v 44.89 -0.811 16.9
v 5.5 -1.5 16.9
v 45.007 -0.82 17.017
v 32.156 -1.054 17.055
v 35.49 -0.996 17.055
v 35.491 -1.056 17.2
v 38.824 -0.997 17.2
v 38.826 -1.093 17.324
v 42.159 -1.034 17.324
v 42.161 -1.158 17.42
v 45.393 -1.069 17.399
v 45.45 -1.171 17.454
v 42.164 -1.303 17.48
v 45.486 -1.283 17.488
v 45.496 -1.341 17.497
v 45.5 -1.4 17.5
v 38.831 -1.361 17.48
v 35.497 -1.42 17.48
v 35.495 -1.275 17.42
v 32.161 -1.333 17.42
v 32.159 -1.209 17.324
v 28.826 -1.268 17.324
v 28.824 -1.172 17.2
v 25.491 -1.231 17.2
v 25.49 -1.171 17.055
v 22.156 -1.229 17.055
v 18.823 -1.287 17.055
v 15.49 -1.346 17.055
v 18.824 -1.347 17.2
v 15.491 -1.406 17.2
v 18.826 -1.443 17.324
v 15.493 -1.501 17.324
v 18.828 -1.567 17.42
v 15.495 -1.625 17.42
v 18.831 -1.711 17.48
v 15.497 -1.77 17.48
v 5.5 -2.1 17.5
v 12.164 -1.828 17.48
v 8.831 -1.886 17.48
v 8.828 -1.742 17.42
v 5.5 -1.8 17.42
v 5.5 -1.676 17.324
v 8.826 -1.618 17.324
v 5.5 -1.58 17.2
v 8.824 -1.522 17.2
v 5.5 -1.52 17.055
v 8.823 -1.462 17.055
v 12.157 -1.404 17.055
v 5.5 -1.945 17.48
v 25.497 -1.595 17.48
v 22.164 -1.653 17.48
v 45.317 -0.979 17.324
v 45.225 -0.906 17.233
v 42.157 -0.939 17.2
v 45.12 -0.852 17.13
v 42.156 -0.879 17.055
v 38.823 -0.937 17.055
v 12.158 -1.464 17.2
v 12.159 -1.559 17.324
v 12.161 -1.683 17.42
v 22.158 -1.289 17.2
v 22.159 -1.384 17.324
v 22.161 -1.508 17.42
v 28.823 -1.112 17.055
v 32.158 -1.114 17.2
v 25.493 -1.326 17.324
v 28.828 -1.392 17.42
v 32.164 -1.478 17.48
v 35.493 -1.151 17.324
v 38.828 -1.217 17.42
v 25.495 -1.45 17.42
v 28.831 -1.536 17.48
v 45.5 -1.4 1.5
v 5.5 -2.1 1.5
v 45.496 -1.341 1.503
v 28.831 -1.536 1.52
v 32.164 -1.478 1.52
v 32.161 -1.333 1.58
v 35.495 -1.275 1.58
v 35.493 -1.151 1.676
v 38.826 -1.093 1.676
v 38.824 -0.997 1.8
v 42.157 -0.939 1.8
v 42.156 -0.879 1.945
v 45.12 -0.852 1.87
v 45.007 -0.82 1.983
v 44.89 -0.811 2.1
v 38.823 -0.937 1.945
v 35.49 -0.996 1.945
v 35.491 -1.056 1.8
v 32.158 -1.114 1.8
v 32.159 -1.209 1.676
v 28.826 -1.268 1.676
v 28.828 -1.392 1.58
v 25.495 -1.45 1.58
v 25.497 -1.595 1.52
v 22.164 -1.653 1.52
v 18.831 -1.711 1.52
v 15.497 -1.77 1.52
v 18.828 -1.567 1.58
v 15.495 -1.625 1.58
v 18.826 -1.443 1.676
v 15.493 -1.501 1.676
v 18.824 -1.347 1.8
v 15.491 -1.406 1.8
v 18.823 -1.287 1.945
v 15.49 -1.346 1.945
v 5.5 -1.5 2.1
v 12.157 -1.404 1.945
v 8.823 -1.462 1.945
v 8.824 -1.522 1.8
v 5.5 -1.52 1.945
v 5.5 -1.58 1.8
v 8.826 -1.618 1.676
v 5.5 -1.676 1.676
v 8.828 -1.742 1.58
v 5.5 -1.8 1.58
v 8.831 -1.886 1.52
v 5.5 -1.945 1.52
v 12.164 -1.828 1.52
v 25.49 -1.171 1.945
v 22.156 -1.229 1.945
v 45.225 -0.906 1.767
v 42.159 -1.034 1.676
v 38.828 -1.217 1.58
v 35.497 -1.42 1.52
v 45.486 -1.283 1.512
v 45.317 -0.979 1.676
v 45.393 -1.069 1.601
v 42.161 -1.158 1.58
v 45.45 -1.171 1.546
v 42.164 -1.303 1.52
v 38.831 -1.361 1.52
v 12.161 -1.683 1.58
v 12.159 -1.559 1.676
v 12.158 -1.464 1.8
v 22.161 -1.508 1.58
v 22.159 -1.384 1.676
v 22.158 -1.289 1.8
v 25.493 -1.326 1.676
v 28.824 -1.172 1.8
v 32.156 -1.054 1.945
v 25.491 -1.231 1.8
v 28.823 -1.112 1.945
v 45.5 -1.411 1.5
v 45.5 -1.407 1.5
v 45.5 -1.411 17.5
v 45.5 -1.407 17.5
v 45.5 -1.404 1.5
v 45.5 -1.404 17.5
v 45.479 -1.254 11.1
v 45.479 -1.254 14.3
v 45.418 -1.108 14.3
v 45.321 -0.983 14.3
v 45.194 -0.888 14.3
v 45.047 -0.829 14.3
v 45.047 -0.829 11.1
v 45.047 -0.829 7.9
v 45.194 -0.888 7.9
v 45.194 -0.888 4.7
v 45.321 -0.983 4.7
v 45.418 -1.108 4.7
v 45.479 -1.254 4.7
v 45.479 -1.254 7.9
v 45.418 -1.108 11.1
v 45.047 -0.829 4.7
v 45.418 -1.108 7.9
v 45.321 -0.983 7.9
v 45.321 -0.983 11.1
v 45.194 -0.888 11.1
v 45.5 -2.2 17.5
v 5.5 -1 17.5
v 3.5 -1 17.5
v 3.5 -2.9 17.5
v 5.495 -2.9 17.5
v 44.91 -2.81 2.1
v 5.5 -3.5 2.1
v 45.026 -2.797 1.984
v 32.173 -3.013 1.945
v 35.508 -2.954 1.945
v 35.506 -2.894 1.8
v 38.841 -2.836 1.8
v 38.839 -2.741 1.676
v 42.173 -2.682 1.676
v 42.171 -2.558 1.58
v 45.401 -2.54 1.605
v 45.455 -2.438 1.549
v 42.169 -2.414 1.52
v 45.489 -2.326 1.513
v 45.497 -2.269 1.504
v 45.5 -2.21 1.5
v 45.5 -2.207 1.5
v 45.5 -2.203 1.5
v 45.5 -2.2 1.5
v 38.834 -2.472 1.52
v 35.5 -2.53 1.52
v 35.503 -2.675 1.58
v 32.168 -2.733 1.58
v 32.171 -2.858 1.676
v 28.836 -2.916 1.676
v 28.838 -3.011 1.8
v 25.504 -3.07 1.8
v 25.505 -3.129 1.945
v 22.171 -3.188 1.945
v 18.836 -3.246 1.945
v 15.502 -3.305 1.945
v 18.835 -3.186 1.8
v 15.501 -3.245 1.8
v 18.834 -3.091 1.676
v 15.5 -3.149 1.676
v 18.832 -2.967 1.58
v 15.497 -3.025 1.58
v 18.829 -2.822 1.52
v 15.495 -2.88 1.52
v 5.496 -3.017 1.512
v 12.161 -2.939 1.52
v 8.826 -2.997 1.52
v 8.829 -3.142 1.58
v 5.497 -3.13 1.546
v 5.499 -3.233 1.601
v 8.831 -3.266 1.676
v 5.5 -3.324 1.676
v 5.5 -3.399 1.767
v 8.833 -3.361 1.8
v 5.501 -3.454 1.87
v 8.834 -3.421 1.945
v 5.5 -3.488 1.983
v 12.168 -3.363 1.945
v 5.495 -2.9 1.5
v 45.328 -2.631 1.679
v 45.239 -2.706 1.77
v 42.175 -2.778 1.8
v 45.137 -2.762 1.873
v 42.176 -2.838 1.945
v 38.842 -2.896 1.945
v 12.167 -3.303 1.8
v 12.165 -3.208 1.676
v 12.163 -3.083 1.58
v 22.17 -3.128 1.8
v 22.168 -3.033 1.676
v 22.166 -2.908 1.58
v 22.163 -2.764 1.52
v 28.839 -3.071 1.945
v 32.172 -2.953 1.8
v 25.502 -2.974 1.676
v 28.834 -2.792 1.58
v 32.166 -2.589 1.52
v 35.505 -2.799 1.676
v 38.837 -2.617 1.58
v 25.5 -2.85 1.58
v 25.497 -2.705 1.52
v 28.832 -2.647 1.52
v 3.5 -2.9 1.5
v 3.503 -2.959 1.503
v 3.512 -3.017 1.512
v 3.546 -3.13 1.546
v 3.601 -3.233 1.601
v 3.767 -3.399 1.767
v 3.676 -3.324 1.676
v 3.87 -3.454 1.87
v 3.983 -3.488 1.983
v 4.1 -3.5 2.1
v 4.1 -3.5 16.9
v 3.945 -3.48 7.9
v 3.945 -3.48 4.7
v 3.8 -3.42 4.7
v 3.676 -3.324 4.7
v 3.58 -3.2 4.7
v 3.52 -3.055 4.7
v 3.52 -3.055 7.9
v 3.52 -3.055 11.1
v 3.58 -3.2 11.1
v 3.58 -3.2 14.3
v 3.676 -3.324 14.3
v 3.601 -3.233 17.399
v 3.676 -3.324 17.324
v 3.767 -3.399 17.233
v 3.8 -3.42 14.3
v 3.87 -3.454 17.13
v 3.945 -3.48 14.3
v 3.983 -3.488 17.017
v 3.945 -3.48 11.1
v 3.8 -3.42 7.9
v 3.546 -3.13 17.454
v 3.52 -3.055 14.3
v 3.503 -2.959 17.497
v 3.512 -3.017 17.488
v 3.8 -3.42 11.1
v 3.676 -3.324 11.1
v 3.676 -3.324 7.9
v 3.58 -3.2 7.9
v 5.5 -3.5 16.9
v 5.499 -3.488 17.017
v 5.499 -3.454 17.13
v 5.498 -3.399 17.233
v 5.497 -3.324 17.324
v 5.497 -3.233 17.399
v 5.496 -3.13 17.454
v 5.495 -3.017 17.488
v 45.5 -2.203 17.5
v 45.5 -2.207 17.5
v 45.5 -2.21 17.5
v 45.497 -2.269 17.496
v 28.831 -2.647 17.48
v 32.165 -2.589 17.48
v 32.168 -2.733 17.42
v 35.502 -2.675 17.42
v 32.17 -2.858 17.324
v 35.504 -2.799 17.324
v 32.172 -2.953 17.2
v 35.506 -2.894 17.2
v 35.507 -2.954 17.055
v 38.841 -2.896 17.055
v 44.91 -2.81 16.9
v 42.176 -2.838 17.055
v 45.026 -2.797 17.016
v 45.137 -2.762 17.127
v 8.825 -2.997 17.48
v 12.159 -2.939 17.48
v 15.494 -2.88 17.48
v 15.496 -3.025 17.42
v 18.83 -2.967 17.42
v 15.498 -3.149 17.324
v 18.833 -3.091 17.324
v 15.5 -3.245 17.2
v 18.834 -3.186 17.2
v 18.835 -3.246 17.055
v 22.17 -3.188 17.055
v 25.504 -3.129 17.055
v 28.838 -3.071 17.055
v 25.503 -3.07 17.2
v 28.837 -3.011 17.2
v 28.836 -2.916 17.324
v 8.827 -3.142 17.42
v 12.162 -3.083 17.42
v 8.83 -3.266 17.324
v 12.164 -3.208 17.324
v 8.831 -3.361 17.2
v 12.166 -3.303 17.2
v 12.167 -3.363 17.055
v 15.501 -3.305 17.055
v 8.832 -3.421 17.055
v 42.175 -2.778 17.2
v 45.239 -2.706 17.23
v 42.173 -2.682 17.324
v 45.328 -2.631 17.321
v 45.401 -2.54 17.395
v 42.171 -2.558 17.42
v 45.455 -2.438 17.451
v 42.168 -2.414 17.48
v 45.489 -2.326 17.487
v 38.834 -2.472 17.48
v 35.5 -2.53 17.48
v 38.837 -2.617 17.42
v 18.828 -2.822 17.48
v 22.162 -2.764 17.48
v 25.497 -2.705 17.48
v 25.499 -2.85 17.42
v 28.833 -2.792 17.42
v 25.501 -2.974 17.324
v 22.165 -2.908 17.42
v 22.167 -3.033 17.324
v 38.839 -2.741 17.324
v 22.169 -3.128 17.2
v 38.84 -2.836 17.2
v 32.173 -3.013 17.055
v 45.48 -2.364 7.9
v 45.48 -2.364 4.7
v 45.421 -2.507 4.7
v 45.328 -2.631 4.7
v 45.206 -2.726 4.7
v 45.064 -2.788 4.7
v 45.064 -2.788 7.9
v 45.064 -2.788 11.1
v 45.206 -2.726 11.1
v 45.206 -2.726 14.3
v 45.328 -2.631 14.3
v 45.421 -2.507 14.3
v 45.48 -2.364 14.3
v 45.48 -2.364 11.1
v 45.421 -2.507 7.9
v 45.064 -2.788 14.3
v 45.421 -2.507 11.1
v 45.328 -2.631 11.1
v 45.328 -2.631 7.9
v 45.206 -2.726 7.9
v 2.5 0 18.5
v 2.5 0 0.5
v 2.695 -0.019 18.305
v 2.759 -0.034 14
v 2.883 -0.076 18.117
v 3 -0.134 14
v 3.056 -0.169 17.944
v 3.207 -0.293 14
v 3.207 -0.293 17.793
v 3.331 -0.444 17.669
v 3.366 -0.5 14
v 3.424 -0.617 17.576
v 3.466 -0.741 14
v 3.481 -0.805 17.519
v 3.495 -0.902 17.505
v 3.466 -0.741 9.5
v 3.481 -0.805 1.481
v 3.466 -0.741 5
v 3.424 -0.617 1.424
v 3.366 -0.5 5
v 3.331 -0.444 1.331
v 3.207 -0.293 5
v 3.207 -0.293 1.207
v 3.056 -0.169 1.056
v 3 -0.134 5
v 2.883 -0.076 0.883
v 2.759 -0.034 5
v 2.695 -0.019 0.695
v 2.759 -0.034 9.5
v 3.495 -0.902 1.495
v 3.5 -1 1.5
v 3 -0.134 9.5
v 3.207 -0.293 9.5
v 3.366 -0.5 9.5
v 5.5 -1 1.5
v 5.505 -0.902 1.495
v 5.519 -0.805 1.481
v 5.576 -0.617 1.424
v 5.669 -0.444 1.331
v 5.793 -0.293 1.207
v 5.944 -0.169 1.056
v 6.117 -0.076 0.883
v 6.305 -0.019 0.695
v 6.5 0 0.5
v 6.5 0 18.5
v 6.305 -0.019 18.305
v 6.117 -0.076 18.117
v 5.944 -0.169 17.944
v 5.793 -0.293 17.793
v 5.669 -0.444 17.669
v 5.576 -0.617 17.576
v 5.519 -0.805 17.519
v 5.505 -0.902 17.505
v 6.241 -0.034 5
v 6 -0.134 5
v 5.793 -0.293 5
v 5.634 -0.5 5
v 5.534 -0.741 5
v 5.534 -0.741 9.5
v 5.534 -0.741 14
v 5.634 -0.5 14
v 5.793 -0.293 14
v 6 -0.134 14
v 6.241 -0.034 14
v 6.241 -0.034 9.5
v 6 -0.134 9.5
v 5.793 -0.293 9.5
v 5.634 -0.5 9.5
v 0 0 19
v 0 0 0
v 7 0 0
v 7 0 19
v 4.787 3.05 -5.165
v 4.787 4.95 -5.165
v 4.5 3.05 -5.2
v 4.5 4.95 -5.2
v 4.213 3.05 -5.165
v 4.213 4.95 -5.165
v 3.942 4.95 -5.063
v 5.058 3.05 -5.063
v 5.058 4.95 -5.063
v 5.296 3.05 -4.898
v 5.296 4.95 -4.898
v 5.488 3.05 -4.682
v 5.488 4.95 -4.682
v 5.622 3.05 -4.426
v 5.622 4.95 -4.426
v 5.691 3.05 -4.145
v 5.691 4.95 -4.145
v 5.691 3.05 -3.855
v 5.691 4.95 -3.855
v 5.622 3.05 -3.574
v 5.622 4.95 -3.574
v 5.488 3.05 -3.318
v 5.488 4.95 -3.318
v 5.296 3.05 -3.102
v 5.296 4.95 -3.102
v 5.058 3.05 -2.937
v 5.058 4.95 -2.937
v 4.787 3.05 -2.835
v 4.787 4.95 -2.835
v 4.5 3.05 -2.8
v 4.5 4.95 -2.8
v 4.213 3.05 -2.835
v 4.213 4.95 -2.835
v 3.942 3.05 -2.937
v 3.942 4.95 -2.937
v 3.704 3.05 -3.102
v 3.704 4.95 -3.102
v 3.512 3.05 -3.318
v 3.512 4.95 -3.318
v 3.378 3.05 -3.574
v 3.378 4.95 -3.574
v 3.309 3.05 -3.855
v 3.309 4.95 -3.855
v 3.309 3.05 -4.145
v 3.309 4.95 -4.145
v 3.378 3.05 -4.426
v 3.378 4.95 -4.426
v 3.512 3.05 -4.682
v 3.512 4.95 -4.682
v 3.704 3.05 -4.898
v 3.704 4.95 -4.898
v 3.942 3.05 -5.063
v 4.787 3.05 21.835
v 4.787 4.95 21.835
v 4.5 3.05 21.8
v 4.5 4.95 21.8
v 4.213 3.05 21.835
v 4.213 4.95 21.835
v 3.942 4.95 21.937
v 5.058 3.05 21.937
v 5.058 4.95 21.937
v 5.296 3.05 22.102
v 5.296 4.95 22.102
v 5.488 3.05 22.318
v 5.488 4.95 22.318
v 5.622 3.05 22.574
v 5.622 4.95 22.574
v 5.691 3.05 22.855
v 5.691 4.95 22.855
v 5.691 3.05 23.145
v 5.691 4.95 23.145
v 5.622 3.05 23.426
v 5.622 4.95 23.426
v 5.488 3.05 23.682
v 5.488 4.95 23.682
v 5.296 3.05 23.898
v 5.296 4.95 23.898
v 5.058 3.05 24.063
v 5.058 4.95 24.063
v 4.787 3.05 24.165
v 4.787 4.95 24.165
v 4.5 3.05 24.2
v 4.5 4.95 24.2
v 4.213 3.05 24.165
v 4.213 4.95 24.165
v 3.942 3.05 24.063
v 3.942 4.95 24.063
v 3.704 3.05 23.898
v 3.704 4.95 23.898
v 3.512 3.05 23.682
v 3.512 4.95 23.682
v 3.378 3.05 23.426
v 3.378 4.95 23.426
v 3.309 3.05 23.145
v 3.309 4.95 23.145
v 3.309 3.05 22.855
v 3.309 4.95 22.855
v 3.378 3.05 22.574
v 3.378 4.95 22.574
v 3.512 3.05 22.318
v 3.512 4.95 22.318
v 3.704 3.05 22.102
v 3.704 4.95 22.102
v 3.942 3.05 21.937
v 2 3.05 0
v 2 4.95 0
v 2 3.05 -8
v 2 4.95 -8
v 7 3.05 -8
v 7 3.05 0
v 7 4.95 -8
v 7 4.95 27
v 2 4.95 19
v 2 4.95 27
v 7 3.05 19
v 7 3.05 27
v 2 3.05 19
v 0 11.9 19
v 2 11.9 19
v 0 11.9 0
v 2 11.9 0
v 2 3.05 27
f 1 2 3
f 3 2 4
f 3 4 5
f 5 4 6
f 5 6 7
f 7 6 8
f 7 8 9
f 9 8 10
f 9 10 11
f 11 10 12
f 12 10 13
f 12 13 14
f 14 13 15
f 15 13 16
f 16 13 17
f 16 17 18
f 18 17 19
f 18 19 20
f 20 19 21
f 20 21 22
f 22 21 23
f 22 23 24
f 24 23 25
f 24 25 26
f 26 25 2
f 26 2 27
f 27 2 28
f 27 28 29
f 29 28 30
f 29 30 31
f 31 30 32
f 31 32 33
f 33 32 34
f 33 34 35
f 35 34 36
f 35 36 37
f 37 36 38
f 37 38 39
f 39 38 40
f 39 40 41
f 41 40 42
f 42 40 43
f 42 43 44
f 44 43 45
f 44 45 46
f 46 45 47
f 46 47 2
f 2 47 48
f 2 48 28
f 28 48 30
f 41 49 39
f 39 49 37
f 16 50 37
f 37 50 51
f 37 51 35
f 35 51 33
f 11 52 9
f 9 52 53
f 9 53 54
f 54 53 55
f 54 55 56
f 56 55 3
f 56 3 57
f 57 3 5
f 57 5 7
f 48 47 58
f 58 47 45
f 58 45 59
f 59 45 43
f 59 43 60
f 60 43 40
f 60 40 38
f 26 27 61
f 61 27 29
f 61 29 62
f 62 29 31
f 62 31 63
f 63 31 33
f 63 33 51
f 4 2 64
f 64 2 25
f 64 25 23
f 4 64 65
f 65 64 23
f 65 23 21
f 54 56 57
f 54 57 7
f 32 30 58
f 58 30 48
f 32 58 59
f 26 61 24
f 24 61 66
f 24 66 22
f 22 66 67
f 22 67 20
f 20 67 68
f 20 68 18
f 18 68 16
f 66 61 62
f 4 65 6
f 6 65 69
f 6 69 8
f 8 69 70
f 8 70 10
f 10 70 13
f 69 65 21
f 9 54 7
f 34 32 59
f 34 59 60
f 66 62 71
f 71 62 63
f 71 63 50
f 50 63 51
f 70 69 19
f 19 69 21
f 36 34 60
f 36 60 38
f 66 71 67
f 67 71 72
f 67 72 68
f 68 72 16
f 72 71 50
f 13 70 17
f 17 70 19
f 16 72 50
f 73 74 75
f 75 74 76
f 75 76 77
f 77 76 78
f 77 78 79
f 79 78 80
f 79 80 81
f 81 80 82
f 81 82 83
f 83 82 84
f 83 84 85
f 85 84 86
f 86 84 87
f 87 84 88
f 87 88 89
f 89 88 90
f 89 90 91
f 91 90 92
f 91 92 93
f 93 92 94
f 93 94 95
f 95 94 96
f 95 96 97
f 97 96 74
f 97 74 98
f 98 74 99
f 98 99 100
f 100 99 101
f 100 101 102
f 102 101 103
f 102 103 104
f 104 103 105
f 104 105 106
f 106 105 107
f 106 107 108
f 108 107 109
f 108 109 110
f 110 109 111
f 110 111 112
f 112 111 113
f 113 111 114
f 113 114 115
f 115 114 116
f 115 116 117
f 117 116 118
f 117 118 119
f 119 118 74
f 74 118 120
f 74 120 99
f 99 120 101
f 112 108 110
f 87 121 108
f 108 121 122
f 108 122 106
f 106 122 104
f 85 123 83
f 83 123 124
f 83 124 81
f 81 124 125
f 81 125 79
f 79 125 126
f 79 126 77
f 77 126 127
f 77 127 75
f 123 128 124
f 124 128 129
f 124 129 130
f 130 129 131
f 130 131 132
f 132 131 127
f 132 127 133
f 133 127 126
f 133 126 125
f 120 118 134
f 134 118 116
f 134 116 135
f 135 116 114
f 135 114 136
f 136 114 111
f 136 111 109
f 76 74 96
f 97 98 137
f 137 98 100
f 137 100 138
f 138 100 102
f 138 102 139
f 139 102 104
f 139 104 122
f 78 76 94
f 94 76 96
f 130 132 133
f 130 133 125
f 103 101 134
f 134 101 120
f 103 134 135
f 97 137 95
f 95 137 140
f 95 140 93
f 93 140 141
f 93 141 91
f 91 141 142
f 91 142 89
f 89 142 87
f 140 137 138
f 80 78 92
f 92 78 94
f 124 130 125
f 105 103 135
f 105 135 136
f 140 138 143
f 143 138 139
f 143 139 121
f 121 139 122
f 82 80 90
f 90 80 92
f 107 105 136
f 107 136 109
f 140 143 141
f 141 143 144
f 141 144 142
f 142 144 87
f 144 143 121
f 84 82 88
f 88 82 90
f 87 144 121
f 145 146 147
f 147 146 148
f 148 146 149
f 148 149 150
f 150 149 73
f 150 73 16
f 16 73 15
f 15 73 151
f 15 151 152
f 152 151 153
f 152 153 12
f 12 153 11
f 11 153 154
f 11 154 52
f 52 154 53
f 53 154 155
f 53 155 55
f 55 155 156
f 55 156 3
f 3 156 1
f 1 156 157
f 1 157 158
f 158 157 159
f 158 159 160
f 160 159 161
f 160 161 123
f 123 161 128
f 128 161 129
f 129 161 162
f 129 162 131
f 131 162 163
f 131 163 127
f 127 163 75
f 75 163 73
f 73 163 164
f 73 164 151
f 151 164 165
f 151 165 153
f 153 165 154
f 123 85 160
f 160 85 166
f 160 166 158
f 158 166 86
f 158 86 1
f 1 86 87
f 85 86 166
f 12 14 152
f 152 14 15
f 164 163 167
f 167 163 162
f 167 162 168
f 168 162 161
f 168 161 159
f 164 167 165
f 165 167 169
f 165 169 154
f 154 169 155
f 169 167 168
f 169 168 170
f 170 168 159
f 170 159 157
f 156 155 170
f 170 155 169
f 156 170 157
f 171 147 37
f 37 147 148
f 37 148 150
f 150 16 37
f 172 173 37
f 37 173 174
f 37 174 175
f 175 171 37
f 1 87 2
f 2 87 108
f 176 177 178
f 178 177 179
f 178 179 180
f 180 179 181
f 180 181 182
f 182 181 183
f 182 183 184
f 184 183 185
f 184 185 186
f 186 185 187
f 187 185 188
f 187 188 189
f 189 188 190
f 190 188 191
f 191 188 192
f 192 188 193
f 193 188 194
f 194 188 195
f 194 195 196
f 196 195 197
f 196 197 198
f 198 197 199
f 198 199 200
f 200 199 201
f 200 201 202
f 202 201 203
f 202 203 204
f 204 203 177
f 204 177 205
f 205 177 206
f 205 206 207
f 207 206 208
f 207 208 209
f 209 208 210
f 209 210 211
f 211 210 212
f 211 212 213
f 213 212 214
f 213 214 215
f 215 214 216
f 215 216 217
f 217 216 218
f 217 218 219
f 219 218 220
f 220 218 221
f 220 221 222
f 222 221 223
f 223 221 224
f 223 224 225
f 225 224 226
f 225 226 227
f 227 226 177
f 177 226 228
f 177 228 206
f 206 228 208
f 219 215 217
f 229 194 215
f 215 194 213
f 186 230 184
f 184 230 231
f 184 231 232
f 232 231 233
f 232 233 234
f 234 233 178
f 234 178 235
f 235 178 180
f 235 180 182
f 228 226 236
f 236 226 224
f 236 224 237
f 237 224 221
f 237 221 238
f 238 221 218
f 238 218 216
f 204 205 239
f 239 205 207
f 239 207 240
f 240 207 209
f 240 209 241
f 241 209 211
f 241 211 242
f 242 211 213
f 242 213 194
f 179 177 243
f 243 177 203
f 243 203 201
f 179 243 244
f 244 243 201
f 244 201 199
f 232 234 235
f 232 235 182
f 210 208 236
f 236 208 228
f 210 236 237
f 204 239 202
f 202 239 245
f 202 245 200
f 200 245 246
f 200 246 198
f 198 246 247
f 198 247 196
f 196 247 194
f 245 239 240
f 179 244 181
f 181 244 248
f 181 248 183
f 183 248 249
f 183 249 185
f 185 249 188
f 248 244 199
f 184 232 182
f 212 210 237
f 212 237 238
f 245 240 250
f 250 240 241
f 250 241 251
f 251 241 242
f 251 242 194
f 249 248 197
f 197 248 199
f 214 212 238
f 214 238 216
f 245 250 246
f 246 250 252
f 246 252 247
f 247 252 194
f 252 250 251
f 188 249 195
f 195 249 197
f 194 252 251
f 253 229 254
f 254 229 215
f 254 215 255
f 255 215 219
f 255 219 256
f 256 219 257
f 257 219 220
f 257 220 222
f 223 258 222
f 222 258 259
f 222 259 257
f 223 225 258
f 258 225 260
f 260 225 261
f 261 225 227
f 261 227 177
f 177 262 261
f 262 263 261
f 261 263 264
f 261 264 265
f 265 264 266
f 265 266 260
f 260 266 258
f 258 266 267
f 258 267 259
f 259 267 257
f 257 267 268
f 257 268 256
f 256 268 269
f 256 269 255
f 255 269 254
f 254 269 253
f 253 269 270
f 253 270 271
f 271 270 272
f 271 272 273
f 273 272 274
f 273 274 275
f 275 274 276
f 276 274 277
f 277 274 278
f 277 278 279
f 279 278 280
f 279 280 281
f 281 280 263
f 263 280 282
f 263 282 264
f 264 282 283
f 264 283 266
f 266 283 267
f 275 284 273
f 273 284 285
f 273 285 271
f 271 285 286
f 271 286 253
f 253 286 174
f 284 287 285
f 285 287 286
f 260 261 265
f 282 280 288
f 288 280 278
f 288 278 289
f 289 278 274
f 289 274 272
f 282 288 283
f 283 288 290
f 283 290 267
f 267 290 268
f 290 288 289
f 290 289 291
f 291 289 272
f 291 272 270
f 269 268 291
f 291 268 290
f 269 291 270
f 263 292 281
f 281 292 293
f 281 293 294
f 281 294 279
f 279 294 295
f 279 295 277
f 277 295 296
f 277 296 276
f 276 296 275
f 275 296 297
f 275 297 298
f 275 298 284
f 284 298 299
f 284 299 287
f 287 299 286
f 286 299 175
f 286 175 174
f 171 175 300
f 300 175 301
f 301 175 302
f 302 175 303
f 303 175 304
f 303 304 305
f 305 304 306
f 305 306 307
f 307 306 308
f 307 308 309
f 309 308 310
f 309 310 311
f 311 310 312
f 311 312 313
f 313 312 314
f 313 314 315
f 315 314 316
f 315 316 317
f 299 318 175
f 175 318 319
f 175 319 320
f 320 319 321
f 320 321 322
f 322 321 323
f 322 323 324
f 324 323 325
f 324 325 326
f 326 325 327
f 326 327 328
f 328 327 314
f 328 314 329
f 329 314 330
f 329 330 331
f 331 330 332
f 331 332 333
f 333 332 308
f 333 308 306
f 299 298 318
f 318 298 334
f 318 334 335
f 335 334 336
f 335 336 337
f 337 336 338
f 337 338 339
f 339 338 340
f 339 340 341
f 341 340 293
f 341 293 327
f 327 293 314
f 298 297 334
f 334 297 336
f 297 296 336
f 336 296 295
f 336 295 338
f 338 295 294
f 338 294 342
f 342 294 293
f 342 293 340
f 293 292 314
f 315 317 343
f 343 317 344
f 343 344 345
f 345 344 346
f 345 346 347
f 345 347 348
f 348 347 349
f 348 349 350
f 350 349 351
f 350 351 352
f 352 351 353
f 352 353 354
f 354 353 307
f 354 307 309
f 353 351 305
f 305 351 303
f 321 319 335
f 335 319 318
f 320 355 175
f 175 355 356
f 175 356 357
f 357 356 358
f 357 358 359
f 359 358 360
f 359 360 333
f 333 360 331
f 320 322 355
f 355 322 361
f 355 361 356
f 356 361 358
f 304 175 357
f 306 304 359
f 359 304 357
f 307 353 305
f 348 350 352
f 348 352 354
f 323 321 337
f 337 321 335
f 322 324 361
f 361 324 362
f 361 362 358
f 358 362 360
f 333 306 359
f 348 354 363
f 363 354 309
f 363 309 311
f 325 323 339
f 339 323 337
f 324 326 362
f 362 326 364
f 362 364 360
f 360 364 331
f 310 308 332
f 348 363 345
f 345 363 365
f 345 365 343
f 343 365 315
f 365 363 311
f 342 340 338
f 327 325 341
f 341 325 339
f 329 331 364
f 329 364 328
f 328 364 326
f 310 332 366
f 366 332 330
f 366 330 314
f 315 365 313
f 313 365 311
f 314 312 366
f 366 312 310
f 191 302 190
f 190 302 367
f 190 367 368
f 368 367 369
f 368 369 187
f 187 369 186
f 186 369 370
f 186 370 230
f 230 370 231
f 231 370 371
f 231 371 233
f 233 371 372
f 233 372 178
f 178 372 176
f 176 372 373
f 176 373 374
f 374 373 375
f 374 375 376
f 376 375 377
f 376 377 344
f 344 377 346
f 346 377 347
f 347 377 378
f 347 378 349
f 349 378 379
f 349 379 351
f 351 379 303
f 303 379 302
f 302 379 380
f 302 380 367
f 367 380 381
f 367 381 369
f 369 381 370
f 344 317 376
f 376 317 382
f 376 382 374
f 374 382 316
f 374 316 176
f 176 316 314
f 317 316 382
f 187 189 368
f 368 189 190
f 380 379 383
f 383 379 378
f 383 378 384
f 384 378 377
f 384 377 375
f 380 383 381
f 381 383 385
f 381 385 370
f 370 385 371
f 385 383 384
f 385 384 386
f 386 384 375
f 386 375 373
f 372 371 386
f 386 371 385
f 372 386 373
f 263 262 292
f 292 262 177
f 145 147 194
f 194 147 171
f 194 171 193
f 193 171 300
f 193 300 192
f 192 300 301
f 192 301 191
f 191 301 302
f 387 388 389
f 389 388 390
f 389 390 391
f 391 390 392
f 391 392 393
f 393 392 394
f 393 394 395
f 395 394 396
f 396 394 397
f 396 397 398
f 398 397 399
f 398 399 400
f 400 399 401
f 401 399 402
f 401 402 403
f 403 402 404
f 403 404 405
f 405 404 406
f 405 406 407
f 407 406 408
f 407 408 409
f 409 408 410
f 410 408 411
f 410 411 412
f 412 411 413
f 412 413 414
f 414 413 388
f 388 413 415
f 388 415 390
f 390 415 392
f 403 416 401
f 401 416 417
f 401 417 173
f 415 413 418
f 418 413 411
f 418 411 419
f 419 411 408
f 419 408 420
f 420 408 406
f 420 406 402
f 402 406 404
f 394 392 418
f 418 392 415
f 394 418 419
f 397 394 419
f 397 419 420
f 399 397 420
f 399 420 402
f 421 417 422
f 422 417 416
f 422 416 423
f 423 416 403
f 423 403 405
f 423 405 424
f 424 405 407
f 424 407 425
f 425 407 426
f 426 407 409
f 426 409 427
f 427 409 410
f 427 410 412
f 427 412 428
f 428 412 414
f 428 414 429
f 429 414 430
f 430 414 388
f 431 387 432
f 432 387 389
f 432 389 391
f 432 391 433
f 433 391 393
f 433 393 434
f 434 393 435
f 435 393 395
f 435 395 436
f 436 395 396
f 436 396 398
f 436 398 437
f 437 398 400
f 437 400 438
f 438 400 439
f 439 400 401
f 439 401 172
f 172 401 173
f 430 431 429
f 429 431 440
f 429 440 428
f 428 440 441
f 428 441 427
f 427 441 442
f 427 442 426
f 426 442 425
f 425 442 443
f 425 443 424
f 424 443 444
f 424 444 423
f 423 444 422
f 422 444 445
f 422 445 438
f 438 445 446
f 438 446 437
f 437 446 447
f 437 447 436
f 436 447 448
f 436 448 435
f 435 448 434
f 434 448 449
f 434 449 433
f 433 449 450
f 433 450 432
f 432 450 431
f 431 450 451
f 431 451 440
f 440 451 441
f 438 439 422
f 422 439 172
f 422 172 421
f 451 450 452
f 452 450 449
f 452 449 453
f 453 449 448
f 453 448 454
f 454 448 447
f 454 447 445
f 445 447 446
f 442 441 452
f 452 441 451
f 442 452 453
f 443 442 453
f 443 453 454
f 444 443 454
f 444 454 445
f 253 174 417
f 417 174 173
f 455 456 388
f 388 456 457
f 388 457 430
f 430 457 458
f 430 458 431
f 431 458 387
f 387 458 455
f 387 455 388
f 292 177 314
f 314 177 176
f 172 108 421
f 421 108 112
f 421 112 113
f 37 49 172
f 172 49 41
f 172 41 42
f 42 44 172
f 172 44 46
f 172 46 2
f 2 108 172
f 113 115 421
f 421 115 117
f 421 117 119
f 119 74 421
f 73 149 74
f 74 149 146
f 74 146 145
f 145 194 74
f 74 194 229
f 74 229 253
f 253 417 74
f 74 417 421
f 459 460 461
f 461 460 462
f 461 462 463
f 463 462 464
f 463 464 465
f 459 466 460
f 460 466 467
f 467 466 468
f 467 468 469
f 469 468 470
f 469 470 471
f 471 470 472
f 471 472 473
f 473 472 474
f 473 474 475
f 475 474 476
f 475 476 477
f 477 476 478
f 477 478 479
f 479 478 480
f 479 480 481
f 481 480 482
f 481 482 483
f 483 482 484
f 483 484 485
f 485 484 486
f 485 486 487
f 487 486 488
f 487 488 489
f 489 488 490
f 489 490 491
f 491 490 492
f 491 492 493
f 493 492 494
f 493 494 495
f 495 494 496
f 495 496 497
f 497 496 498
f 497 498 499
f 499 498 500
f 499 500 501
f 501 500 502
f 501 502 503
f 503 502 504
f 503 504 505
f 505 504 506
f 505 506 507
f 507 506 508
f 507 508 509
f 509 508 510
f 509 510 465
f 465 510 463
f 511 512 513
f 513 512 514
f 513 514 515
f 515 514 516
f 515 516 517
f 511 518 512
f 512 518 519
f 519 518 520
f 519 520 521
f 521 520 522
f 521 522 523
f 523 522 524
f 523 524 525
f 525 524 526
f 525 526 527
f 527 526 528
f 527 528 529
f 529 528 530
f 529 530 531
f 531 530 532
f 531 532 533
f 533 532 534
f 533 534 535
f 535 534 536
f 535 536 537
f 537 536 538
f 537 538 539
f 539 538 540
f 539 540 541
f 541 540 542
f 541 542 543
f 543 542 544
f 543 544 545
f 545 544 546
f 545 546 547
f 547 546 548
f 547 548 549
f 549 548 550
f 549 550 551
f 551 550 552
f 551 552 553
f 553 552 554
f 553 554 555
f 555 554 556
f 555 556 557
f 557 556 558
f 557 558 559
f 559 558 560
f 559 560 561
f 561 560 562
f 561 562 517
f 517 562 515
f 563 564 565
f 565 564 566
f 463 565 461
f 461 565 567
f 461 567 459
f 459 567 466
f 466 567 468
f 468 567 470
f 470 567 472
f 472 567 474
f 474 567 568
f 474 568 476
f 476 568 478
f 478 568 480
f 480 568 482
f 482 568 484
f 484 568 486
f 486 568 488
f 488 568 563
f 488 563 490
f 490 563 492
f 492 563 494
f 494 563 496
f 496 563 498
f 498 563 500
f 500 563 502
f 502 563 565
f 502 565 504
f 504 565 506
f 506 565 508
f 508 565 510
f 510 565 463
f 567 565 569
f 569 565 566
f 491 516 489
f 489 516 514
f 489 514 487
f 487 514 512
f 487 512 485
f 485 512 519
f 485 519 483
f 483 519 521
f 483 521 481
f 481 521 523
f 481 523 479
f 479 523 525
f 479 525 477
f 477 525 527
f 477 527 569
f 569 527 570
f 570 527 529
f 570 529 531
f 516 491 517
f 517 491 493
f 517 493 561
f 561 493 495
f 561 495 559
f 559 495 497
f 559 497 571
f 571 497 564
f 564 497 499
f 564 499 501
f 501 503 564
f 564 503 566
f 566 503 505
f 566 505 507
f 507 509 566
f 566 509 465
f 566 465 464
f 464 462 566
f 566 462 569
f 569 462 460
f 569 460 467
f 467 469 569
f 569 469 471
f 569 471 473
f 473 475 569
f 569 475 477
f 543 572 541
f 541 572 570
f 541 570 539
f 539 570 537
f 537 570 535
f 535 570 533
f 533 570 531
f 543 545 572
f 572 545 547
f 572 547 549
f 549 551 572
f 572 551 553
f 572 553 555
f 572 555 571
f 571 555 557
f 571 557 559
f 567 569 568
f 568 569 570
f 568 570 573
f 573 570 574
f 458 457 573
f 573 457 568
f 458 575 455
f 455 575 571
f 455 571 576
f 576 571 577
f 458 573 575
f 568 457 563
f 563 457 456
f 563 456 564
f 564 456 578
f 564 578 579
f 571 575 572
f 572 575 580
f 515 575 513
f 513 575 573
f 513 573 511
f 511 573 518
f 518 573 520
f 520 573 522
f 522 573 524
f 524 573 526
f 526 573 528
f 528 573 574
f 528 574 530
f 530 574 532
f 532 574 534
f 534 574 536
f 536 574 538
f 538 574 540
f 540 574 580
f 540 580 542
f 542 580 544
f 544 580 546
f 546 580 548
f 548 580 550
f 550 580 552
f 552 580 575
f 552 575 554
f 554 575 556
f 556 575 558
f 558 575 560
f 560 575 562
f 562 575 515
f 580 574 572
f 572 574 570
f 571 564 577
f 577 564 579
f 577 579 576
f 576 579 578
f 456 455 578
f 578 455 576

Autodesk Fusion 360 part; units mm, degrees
sketch "Sketch1" plane through (0, 0, 0) normal (0, 1, 0) x (1, 0, 0)
  line L0 (0, 0) -> (7, 0)
  line L1 (7, 0) -> (7, -19)
  line L2 (7, -19) -> (0, -19)
  line L3 (0, -19) -> (0, 0)
  dimension "d1" = 7
  dimension "d2" = 19
extrude "Extrude1" add sketch "Sketch1" along normal blind 4.95
sketch "Sketch3" plane through (0, 4.95, 0) normal (0, 1, 0) x (-1, 0, 0)
  line L0 (0, 19) -> (-7, 19)
  line L1 (-7, 19) -> (-7, 0)
  line L2 (-7, 0) -> (0, 0)
  line L3 (0, 0) -> (0, 19)
  line L4 (0, 0) -> (-2, 0)
  line L5 (-2, 0) -> (-2, 19)
  line L6 (-2, 19) -> (0, 19)
  line L7 (0, 19) -> (0, 0)
  dimension "d8" = 2
extrude "Extrude3" add sketch "Sketch3" along normal blind 6.95 contours L0 L2 L3 L4 L5 L6 L7
ref_plane "WorkPlane1" through (3.5, 5.95, 9.5) normal (0, 0, 1) x (1, 0, 0)
sketch "Sketch4" plane through (0, 0, 19) normal (0, 0, 1) x (1, 0, 0)
  line L0 (0, 0) -> (7, 0)
  line L1 (7, 0) -> (7, 4.95)
  line L2 (7, 4.95) -> (2, 4.95)
  line L3 (2, 4.95) -> (2, 11.9)
  line L4 (2, 11.9) -> (0, 11.9)
  line L5 (0, 11.9) -> (0, 0)
  line L6 (2, 4.95) -> (7, 4.95)
  line L7 (7, 4.95) -> (7, 3.05)
  line L8 (7, 3.05) -> (2, 3.05)
  line L9 (2, 3.05) -> (2, 4.95)
  dimension "d21" = 3.05
extrude "Extrude4" add sketch "Sketch4" along normal blind 8 contours L1 L2 L6 L7 L8 L9
mirror "Mirror1" about plane through (3.5, 5.95, 9.5) normal (0, 0, 1) of "Extrude4"
sketch "Sketch5" plane through (0, 4.95, 0) normal (0, 1, 0) x (-1, 0, 0)
  line L0 (-7, 27) -> (-7, -8)
  line L1 (-7, -8) -> (-2, -8)
  line L2 (-2, -8) -> (-2, 0)
  line L3 (-2, 0) -> (-2, 19)
  line L4 (-2, 19) -> (-2, 27)
  line L5 (-2, 27) -> (-7, 27)
  line L6 (0, 19) -> (-2, 19)
  line L7 (0.7, 9.5) -> (-7.7, 9.5)
  point P0 (-4.5, 23)
  point P1 (-4.5, -4)
  dimension "d14" = 2.5
  dimension "d15" = 2.5
  dimension "d16" = 4
  dimension "d17" = 5
hole "Hole1" at (4.5, 4.95, -4) at (4.5, 4.95, 23) direction (0, -1, 0) diameter 2.4 depth 2 tip angle 118
sketch "Sketch6" plane through (0, 0, 0) normal (0, -1, 0) x (1, 0, 0)
  line L0 (0, 0) -> (7, 0)
  line L1 (7, 0) -> (7, 19)
  line L2 (7, 19) -> (0, 19)
  line L3 (0, 19) -> (0, 0)
  line L4 (3.5, 17.5) -> (5.5, 17.5)
  line L5 (5.5, 17.5) -> (5.5, 1.5)
  line L6 (5.5, 1.5) -> (3.5, 1.5)
  line L7 (3.5, 1.5) -> (3.5, 17.5)
  dimension "d22" = 2
  dimension "d23" = 1.5
  dimension "d24" = 1.5
  dimension "d25" = 1.5
extrude "Extrude5" add sketch "Sketch6" along normal blind 3.5 contours L4 L5 L6 L7
sketch "Sketch7" plane through (5.5, 0, 0) normal (1, 0, 0) x (0, 0, -1)
  line L0 (-1.5, 0) -> (-17.5, 0)
  line L1 (-17.5, 0) -> (-17.5, -3.5)
  line L2 (-17.5, -3.5) -> (-1.5, -3.5)
  line L3 (-1.5, -3.5) -> (-1.5, 0)
  line L4 (-17.5, -3.5) -> (-1.5, -3.5)
  line L5 (-1.5, -3.5) -> (-1.5, -1.5)
  line L6 (-1.5, -1.5) -> (-17.5, -1.5)
  line L7 (-17.5, -1.5) -> (-17.5, -3.5)
  dimension "d28" = 2
sketch "Sketch8" plane through (0, 0, 0) normal (0, 0, 1) x (1, 0, 0)
  line L0 (5.5, -3.6158) -> (45.5, -2.9158)
  line L1 (5.5, -3.5) -> (5.5, -1.5)
  dimension "d29" = 0.7
  dimension "d30" = 40
sweep "Sweep1" add profiles "Sketch7" path "Sketch8" along L0 section 1 contours L1 L2 L3 L4 L5 L6 L7
fillet "Fillet1" radius 1 3 edges at (3.5, 0, 9.5) (4.5, 0, 1.5) (4.5, 0, 17.5)
fillet "Fillet1" radius 1 1 edges at (5.5, 0, 9.5)
fillet "Fillet2" radius 0.6 9 edges at (3.5, -3.5, 9.5) (25.5, -3.15, 1.5) (4.5, -3.5, 1.5) (4.5, -3.5, 17.5) (25.5, -3.15, 17.5) (45.5, -2.8, 9.5) (25.5, -1.15, 1.5) (25.5, -1.15, 17.5) (45.5, -0.8, 9.5)
